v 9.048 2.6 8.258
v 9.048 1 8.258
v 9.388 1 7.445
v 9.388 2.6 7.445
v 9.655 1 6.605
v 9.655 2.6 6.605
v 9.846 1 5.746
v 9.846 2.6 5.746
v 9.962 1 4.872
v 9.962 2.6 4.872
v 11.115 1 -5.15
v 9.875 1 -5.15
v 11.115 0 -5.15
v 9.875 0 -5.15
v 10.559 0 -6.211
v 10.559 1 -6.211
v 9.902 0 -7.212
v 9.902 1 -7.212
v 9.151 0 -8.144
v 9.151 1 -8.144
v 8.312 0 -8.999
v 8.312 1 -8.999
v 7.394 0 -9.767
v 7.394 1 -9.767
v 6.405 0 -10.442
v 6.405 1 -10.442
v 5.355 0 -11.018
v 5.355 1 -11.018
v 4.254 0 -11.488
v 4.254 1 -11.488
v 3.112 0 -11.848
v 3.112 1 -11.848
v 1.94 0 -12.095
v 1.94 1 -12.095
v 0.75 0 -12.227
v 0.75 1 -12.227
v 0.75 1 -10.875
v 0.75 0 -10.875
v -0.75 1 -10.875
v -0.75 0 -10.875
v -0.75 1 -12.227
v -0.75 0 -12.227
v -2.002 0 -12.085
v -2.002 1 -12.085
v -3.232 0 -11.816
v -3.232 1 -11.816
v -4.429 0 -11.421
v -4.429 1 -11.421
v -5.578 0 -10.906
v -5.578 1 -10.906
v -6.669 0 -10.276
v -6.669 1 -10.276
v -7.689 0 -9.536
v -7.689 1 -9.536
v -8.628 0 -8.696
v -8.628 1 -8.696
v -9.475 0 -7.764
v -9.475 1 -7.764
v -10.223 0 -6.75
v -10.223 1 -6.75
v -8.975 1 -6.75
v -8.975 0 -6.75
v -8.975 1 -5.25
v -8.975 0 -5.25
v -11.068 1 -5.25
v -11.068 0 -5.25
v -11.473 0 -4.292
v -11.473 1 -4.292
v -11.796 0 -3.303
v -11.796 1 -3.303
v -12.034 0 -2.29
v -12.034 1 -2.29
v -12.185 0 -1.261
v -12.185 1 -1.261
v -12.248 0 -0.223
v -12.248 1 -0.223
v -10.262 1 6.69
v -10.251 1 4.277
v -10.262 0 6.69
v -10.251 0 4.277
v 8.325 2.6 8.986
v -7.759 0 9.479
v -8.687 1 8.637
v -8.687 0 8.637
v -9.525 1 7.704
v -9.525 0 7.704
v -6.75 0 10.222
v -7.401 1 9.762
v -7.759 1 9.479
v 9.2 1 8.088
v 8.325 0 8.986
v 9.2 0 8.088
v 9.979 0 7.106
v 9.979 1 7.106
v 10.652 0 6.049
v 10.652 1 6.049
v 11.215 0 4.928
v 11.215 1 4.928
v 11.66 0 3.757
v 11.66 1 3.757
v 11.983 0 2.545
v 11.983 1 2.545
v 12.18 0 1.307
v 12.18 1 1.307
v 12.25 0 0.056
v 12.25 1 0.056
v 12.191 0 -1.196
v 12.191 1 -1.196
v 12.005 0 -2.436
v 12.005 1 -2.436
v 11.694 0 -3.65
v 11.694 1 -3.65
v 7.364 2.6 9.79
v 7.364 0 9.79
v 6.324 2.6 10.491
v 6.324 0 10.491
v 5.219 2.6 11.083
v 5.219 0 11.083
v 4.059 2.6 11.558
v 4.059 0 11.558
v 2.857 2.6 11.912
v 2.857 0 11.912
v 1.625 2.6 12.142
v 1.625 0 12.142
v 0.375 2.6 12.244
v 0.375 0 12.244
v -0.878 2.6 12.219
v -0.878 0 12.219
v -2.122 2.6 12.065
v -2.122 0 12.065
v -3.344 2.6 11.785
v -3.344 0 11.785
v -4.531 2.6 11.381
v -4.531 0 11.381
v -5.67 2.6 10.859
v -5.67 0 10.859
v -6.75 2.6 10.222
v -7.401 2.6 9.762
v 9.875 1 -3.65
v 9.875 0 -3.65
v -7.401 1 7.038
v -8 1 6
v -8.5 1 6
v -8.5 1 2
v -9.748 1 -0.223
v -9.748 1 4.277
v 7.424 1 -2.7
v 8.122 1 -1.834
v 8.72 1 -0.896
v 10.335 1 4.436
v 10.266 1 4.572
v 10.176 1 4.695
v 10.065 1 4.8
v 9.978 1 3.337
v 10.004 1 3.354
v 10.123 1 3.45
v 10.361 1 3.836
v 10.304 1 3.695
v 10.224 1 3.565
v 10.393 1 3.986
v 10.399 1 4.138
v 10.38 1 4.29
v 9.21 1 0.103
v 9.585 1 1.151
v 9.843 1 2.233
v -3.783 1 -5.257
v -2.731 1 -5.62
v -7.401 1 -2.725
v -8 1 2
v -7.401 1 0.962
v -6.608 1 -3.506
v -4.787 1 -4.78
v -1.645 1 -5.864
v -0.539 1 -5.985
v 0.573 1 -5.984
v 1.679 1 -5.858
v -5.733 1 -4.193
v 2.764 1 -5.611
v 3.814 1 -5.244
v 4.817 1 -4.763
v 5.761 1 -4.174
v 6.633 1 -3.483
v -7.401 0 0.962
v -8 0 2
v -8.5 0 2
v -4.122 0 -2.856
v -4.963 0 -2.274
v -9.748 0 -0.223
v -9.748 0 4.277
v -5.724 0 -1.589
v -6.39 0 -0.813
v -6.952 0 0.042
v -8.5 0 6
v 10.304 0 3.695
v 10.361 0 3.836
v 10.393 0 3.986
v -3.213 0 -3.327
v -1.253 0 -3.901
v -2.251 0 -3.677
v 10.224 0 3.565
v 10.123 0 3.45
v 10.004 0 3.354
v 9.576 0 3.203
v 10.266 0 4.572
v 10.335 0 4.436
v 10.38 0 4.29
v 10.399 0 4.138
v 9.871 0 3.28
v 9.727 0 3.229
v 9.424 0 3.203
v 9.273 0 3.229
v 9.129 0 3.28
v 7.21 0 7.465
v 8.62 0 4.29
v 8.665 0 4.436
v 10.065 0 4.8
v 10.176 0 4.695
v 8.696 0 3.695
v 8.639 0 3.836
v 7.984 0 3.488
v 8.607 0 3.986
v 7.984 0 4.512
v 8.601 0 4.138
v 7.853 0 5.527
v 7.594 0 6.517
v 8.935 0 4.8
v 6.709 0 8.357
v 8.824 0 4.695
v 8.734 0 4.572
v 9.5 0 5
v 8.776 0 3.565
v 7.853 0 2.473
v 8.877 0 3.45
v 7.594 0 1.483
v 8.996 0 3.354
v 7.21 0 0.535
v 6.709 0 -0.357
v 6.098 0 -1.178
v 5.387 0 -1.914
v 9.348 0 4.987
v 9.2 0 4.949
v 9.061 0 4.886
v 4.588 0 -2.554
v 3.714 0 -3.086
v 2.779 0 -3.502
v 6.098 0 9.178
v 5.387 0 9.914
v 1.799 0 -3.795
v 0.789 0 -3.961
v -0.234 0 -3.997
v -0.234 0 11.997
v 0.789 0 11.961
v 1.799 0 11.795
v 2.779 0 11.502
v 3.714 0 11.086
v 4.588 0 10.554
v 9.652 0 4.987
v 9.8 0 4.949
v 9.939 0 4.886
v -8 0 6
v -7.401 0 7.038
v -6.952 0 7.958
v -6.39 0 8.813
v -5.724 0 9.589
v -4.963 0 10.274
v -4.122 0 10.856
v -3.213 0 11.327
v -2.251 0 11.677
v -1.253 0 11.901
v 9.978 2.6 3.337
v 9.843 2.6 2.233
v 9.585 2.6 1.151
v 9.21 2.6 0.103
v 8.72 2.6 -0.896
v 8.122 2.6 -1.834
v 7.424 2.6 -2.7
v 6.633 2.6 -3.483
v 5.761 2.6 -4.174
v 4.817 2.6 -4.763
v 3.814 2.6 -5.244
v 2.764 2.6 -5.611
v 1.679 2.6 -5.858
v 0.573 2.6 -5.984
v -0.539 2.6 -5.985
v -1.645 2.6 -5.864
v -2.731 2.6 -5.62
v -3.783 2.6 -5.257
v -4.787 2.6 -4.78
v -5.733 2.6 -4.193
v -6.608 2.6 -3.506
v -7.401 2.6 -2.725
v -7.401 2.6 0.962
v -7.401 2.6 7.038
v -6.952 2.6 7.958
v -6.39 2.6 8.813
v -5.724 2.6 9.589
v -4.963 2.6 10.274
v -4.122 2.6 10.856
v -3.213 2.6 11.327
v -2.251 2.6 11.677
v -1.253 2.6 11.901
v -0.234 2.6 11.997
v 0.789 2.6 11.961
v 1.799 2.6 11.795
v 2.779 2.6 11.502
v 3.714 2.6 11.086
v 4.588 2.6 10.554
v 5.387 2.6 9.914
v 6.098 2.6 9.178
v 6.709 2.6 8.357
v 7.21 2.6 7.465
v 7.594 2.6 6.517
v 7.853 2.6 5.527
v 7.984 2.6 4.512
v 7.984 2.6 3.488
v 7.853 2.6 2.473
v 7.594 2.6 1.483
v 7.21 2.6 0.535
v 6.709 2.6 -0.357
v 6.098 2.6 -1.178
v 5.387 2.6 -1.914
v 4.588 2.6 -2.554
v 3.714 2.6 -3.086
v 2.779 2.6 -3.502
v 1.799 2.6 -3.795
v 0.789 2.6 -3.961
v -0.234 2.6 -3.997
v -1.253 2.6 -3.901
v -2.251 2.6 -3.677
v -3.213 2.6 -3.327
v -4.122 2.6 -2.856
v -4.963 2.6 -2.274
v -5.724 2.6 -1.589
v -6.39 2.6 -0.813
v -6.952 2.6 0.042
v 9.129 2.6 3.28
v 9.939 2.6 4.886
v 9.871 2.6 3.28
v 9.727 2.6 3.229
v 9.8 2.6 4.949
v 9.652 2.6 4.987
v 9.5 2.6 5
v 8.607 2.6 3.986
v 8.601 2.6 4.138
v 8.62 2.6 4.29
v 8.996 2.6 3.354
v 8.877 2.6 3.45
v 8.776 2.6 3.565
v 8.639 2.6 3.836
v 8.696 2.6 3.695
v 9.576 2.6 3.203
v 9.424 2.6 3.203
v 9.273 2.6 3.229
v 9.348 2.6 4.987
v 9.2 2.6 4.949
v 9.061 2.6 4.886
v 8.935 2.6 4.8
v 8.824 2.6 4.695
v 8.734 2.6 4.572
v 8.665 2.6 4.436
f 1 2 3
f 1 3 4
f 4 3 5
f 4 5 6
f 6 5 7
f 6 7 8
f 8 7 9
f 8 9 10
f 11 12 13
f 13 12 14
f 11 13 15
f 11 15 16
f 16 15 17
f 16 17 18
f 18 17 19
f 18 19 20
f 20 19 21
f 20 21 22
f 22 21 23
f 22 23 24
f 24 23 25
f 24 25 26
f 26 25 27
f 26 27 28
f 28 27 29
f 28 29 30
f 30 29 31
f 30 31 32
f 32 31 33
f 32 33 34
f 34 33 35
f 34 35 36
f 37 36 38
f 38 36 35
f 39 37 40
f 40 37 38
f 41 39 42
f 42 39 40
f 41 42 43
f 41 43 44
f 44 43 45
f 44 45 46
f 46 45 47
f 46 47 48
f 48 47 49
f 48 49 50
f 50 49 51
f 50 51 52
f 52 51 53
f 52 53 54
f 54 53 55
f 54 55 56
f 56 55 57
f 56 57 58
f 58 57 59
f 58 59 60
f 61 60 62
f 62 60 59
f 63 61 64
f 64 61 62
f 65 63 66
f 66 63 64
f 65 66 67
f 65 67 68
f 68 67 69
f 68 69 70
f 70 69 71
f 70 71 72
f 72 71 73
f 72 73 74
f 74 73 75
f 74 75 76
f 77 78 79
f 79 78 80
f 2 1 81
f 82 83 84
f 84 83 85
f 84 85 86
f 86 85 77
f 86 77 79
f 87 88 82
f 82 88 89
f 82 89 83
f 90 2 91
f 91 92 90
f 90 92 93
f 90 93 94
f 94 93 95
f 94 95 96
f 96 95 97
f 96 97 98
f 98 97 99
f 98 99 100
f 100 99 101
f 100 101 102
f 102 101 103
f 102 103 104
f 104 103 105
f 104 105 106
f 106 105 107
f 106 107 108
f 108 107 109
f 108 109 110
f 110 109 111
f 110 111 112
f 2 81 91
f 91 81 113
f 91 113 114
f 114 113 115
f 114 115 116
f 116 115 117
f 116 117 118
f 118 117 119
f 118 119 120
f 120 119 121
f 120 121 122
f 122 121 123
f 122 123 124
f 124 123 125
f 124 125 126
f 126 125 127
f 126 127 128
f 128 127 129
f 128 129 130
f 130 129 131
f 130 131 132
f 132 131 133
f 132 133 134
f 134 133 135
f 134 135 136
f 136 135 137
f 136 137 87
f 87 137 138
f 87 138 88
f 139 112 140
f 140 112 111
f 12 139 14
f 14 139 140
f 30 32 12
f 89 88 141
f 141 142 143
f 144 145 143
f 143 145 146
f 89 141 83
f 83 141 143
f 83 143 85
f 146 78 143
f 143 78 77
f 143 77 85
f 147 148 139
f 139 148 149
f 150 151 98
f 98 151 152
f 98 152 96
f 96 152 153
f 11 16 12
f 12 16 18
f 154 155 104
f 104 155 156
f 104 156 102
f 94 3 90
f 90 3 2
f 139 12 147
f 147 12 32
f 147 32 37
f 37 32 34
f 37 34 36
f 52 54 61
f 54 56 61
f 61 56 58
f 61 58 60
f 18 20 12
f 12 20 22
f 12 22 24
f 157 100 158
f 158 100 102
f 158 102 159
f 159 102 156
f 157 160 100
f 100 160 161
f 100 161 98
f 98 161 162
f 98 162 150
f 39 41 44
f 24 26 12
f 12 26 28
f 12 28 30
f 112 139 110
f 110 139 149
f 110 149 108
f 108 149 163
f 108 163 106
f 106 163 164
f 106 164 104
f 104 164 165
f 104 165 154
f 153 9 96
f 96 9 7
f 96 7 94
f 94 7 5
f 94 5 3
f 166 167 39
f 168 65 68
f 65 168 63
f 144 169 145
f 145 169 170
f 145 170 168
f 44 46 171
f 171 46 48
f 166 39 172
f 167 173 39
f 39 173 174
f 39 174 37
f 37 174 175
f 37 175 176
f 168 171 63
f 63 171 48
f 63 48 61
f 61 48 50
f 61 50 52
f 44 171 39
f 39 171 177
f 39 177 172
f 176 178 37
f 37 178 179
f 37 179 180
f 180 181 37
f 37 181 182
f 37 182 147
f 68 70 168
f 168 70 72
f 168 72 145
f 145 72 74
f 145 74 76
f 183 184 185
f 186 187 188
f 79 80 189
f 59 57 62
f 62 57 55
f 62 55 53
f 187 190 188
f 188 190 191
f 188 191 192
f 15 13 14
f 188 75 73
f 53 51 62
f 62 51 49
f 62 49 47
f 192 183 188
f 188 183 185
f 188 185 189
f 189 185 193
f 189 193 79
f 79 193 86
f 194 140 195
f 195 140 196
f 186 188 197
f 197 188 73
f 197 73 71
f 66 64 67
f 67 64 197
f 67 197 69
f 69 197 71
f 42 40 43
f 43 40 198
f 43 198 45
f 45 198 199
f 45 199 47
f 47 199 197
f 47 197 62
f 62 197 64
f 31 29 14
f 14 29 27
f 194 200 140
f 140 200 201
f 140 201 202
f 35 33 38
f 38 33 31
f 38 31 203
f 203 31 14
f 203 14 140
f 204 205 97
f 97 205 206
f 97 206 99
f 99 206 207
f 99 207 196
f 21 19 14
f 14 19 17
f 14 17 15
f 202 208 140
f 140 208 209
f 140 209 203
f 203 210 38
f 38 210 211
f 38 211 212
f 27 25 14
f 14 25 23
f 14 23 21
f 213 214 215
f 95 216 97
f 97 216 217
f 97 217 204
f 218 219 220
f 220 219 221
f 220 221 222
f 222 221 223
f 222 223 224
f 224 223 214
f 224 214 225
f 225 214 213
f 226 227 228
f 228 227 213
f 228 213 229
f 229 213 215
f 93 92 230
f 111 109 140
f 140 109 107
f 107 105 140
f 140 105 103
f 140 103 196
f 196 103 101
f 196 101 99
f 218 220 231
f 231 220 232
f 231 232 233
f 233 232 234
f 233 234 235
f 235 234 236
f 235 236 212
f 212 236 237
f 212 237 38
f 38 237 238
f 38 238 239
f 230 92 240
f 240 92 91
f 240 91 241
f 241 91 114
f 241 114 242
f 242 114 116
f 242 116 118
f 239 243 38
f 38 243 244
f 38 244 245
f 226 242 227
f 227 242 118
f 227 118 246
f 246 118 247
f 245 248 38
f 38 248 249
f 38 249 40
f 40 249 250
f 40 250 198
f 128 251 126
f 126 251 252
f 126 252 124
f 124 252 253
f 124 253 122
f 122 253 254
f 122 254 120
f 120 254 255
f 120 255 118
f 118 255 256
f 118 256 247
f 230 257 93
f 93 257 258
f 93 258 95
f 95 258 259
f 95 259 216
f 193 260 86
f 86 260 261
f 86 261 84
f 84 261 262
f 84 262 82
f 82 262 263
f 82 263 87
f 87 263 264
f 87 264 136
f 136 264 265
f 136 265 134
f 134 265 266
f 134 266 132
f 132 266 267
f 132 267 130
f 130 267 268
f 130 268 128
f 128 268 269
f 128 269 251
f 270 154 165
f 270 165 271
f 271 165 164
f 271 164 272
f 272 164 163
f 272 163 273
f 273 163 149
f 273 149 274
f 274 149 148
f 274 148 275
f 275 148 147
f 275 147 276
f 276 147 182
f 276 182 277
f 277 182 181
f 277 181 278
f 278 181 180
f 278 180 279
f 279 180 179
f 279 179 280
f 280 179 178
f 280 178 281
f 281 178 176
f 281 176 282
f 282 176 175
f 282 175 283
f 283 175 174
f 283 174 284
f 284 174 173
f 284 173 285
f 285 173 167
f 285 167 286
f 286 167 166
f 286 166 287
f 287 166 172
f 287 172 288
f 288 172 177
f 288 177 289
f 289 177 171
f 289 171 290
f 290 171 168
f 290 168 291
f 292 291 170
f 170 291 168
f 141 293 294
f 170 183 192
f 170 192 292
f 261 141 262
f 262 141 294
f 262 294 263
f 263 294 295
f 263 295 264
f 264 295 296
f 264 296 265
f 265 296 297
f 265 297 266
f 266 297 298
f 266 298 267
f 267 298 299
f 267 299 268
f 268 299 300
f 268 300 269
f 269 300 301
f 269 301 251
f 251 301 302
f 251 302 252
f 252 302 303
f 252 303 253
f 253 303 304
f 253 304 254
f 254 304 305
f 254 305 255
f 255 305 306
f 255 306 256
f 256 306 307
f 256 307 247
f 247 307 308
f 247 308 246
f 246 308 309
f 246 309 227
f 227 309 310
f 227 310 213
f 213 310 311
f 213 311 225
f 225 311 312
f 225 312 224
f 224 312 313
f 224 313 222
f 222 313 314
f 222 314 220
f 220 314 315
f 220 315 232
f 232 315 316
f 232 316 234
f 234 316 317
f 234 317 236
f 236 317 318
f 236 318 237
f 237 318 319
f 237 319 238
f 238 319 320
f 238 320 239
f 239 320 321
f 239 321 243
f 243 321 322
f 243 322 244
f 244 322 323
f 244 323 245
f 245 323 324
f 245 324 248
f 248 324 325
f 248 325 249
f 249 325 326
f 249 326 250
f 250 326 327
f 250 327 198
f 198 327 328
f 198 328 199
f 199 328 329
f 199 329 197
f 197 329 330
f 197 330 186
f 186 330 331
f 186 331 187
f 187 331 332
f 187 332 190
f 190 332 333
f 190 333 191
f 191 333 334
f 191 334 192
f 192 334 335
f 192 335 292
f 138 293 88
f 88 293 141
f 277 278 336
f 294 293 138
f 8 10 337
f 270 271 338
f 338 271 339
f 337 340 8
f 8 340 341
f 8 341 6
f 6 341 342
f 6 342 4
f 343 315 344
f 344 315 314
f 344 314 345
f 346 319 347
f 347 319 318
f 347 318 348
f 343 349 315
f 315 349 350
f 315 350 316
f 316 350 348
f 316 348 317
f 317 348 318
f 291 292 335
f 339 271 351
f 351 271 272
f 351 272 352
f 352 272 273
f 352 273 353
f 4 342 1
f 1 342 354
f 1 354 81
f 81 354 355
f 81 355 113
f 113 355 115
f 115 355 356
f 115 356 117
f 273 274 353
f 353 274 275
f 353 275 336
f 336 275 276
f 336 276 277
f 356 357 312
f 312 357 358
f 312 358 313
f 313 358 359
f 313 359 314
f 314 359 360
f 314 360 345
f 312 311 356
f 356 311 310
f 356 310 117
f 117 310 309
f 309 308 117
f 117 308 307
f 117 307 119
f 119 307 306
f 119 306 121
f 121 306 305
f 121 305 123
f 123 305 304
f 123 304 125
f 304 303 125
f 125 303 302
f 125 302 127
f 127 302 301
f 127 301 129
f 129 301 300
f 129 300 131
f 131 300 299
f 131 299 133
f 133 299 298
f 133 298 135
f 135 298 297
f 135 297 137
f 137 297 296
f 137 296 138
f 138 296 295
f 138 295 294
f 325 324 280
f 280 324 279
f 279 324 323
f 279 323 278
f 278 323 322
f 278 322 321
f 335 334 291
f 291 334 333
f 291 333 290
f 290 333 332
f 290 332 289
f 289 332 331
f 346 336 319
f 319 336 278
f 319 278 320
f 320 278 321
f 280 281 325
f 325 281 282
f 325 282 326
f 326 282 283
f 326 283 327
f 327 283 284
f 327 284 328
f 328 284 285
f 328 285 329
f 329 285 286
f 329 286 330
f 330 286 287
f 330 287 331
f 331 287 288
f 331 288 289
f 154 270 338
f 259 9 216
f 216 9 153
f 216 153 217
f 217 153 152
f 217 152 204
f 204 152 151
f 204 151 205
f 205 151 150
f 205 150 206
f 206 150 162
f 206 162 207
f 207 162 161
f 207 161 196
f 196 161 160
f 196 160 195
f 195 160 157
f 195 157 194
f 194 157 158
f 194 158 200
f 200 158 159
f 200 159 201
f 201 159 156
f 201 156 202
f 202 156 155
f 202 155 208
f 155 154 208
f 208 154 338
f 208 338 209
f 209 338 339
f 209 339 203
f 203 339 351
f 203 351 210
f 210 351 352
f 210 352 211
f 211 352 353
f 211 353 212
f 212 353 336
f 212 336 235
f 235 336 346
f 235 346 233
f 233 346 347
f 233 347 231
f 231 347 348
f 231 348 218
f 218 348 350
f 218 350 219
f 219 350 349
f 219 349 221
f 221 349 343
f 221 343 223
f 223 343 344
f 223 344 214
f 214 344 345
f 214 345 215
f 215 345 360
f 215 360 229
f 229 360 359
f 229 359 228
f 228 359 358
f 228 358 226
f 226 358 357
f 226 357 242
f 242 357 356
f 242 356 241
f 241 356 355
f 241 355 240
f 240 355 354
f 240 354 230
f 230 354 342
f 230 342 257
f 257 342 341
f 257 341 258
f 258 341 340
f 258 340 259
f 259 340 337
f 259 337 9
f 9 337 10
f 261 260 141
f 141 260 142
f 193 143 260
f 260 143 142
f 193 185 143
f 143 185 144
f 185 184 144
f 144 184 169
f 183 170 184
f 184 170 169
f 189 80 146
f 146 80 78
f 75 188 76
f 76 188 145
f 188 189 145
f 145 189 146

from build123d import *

# Parameters (mm, degrees)
BOSS_EXTRUDE1_DEPTH     = 1
BOSS_EXTRUDE2_DEPTH     = 1.6
CUT_EXTRUDE1_DEPTH      = 18.397844694
CUT_EXTRUDE1_DEPTH_BACK = 18.397844694
SKETCH2_R               = 0.9


with BuildPart() as part:
    # Sketch1 → Boss-Extrude1 (new body)
    with BuildSketch(Plane(origin=(0, 0, 0), x_dir=(1, 0, 0), z_dir=(0, 1, 0))):
        with BuildLine():
            Line((-0.75, 10.875), (-0.75, 12.227019261))
            ThreePointArc((-0.75, 12.227019261), (-6.131762108, 10.604904217), (-10.22252415, 6.75))
            Line((-10.22252415, 6.75), (-8.975, 6.75))
            Line((-8.975, 6.75), (-8.975, 5.25))
            Line((-8.975, 5.25), (-11.067971811, 5.25))
            ThreePointArc((-11.067971811, 5.25), (-12.238613585, 0.52805067), (-11.479034226, -4.277180525))
            Line((-11.479034226, -4.277180525), (-10.251454559, -4.277180525))
            Line((-10.251454559, -4.277180525), (-10.261976171, -6.689868838))
            ThreePointArc((-10.261976171, -6.689868838), (5.21925282, -11.08250423), (11.693587987, 3.65))
            Line((11.693587987, 3.65), (9.875, 3.65))
            Line((9.875, 3.65), (9.875, 5.15))
            Line((9.875, 5.15), (11.114854925, 5.15))
            ThreePointArc((11.114854925, 5.15), (6.90758612, 10.116706678), (0.75, 12.227019261))
            Line((0.75, 12.227019261), (0.75, 10.875))
            Line((0.75, 10.875), (-0.75, 10.875))
        make_face()
    extrude(amount=BOSS_EXTRUDE1_DEPTH)

    # Sketch3 → Boss-Extrude2 (add)
    with BuildSketch(Plane(origin=(0, 1, 0), x_dir=(1, 0, 0), z_dir=(0, 1, 0))):
        with BuildLine():
            Line((-7.400720069, 2.725276386), (-7.400720069, -0.962016711))
            ThreePointArc((-7.400720069, -0.962016711), (1.548263455, 3.848750237), (8, -4))
            ThreePointArc((8, -4), (1.548263455, -11.848750237), (-7.400720069, -7.037983289))
            Line((-7.400720069, -7.037983289), (-7.400720069, -9.761754067))
            ThreePointArc((-7.400720069, -9.761754067), (1.115373522, -12.19911644), (9.048261309, -8.2578125))
            ThreePointArc((9.048261309, -8.2578125), (9.759165259, -6.181442975), (10, -4))
            ThreePointArc((10, -4), (3.605051963, 5.32757205), (-7.400720069, 2.725276386))
        make_face()
    extrude(amount=BOSS_EXTRUDE2_DEPTH)

    # Sketch2 → Cut-Extrude1 (cut, two sides: drawn at the far end of the back side and taken through both)
    with BuildSketch(Plane(origin=(0, 1, 0), x_dir=(1, 0, 0), z_dir=(0, 1, 0)).offset(-CUT_EXTRUDE1_DEPTH_BACK)):
        with BuildLine():
            Line((-11.479034226, -4.277180525), (-9.747973362, -4.277180525))
            Line((-9.747973362, -4.277180525), (-9.747973362, 0.222819475))
            Line((-9.747973362, 0.222819475), (-12.247973362, 0.222819475))
            ThreePointArc((-12.247973362, 0.222819475), (-12.074983324, -2.063317167), (-11.479034226, -4.277180525))
        make_face()
        with BuildLine():
            ThreePointArc((-7.400720069, -7.037983289), (8, -4), (-7.400720069, -0.962016711))
            Line((-7.400720069, -0.962016711), (-8, -2))
            Line((-8, -2), (-8.5, -2))
            Line((-8.5, -2), (-8.5, -6))
            Line((-8.5, -6), (-8, -6))
            Line((-8, -6), (-7.400720069, -7.037983289))
        make_face()
        with Locations(Location((9.5, -4.1, 0), (0, 0, 270))):
            Circle(SKETCH2_R)
    extrude(amount=CUT_EXTRUDE1_DEPTH + CUT_EXTRUDE1_DEPTH_BACK, mode=Mode.SUBTRACT)


solid = part.part
